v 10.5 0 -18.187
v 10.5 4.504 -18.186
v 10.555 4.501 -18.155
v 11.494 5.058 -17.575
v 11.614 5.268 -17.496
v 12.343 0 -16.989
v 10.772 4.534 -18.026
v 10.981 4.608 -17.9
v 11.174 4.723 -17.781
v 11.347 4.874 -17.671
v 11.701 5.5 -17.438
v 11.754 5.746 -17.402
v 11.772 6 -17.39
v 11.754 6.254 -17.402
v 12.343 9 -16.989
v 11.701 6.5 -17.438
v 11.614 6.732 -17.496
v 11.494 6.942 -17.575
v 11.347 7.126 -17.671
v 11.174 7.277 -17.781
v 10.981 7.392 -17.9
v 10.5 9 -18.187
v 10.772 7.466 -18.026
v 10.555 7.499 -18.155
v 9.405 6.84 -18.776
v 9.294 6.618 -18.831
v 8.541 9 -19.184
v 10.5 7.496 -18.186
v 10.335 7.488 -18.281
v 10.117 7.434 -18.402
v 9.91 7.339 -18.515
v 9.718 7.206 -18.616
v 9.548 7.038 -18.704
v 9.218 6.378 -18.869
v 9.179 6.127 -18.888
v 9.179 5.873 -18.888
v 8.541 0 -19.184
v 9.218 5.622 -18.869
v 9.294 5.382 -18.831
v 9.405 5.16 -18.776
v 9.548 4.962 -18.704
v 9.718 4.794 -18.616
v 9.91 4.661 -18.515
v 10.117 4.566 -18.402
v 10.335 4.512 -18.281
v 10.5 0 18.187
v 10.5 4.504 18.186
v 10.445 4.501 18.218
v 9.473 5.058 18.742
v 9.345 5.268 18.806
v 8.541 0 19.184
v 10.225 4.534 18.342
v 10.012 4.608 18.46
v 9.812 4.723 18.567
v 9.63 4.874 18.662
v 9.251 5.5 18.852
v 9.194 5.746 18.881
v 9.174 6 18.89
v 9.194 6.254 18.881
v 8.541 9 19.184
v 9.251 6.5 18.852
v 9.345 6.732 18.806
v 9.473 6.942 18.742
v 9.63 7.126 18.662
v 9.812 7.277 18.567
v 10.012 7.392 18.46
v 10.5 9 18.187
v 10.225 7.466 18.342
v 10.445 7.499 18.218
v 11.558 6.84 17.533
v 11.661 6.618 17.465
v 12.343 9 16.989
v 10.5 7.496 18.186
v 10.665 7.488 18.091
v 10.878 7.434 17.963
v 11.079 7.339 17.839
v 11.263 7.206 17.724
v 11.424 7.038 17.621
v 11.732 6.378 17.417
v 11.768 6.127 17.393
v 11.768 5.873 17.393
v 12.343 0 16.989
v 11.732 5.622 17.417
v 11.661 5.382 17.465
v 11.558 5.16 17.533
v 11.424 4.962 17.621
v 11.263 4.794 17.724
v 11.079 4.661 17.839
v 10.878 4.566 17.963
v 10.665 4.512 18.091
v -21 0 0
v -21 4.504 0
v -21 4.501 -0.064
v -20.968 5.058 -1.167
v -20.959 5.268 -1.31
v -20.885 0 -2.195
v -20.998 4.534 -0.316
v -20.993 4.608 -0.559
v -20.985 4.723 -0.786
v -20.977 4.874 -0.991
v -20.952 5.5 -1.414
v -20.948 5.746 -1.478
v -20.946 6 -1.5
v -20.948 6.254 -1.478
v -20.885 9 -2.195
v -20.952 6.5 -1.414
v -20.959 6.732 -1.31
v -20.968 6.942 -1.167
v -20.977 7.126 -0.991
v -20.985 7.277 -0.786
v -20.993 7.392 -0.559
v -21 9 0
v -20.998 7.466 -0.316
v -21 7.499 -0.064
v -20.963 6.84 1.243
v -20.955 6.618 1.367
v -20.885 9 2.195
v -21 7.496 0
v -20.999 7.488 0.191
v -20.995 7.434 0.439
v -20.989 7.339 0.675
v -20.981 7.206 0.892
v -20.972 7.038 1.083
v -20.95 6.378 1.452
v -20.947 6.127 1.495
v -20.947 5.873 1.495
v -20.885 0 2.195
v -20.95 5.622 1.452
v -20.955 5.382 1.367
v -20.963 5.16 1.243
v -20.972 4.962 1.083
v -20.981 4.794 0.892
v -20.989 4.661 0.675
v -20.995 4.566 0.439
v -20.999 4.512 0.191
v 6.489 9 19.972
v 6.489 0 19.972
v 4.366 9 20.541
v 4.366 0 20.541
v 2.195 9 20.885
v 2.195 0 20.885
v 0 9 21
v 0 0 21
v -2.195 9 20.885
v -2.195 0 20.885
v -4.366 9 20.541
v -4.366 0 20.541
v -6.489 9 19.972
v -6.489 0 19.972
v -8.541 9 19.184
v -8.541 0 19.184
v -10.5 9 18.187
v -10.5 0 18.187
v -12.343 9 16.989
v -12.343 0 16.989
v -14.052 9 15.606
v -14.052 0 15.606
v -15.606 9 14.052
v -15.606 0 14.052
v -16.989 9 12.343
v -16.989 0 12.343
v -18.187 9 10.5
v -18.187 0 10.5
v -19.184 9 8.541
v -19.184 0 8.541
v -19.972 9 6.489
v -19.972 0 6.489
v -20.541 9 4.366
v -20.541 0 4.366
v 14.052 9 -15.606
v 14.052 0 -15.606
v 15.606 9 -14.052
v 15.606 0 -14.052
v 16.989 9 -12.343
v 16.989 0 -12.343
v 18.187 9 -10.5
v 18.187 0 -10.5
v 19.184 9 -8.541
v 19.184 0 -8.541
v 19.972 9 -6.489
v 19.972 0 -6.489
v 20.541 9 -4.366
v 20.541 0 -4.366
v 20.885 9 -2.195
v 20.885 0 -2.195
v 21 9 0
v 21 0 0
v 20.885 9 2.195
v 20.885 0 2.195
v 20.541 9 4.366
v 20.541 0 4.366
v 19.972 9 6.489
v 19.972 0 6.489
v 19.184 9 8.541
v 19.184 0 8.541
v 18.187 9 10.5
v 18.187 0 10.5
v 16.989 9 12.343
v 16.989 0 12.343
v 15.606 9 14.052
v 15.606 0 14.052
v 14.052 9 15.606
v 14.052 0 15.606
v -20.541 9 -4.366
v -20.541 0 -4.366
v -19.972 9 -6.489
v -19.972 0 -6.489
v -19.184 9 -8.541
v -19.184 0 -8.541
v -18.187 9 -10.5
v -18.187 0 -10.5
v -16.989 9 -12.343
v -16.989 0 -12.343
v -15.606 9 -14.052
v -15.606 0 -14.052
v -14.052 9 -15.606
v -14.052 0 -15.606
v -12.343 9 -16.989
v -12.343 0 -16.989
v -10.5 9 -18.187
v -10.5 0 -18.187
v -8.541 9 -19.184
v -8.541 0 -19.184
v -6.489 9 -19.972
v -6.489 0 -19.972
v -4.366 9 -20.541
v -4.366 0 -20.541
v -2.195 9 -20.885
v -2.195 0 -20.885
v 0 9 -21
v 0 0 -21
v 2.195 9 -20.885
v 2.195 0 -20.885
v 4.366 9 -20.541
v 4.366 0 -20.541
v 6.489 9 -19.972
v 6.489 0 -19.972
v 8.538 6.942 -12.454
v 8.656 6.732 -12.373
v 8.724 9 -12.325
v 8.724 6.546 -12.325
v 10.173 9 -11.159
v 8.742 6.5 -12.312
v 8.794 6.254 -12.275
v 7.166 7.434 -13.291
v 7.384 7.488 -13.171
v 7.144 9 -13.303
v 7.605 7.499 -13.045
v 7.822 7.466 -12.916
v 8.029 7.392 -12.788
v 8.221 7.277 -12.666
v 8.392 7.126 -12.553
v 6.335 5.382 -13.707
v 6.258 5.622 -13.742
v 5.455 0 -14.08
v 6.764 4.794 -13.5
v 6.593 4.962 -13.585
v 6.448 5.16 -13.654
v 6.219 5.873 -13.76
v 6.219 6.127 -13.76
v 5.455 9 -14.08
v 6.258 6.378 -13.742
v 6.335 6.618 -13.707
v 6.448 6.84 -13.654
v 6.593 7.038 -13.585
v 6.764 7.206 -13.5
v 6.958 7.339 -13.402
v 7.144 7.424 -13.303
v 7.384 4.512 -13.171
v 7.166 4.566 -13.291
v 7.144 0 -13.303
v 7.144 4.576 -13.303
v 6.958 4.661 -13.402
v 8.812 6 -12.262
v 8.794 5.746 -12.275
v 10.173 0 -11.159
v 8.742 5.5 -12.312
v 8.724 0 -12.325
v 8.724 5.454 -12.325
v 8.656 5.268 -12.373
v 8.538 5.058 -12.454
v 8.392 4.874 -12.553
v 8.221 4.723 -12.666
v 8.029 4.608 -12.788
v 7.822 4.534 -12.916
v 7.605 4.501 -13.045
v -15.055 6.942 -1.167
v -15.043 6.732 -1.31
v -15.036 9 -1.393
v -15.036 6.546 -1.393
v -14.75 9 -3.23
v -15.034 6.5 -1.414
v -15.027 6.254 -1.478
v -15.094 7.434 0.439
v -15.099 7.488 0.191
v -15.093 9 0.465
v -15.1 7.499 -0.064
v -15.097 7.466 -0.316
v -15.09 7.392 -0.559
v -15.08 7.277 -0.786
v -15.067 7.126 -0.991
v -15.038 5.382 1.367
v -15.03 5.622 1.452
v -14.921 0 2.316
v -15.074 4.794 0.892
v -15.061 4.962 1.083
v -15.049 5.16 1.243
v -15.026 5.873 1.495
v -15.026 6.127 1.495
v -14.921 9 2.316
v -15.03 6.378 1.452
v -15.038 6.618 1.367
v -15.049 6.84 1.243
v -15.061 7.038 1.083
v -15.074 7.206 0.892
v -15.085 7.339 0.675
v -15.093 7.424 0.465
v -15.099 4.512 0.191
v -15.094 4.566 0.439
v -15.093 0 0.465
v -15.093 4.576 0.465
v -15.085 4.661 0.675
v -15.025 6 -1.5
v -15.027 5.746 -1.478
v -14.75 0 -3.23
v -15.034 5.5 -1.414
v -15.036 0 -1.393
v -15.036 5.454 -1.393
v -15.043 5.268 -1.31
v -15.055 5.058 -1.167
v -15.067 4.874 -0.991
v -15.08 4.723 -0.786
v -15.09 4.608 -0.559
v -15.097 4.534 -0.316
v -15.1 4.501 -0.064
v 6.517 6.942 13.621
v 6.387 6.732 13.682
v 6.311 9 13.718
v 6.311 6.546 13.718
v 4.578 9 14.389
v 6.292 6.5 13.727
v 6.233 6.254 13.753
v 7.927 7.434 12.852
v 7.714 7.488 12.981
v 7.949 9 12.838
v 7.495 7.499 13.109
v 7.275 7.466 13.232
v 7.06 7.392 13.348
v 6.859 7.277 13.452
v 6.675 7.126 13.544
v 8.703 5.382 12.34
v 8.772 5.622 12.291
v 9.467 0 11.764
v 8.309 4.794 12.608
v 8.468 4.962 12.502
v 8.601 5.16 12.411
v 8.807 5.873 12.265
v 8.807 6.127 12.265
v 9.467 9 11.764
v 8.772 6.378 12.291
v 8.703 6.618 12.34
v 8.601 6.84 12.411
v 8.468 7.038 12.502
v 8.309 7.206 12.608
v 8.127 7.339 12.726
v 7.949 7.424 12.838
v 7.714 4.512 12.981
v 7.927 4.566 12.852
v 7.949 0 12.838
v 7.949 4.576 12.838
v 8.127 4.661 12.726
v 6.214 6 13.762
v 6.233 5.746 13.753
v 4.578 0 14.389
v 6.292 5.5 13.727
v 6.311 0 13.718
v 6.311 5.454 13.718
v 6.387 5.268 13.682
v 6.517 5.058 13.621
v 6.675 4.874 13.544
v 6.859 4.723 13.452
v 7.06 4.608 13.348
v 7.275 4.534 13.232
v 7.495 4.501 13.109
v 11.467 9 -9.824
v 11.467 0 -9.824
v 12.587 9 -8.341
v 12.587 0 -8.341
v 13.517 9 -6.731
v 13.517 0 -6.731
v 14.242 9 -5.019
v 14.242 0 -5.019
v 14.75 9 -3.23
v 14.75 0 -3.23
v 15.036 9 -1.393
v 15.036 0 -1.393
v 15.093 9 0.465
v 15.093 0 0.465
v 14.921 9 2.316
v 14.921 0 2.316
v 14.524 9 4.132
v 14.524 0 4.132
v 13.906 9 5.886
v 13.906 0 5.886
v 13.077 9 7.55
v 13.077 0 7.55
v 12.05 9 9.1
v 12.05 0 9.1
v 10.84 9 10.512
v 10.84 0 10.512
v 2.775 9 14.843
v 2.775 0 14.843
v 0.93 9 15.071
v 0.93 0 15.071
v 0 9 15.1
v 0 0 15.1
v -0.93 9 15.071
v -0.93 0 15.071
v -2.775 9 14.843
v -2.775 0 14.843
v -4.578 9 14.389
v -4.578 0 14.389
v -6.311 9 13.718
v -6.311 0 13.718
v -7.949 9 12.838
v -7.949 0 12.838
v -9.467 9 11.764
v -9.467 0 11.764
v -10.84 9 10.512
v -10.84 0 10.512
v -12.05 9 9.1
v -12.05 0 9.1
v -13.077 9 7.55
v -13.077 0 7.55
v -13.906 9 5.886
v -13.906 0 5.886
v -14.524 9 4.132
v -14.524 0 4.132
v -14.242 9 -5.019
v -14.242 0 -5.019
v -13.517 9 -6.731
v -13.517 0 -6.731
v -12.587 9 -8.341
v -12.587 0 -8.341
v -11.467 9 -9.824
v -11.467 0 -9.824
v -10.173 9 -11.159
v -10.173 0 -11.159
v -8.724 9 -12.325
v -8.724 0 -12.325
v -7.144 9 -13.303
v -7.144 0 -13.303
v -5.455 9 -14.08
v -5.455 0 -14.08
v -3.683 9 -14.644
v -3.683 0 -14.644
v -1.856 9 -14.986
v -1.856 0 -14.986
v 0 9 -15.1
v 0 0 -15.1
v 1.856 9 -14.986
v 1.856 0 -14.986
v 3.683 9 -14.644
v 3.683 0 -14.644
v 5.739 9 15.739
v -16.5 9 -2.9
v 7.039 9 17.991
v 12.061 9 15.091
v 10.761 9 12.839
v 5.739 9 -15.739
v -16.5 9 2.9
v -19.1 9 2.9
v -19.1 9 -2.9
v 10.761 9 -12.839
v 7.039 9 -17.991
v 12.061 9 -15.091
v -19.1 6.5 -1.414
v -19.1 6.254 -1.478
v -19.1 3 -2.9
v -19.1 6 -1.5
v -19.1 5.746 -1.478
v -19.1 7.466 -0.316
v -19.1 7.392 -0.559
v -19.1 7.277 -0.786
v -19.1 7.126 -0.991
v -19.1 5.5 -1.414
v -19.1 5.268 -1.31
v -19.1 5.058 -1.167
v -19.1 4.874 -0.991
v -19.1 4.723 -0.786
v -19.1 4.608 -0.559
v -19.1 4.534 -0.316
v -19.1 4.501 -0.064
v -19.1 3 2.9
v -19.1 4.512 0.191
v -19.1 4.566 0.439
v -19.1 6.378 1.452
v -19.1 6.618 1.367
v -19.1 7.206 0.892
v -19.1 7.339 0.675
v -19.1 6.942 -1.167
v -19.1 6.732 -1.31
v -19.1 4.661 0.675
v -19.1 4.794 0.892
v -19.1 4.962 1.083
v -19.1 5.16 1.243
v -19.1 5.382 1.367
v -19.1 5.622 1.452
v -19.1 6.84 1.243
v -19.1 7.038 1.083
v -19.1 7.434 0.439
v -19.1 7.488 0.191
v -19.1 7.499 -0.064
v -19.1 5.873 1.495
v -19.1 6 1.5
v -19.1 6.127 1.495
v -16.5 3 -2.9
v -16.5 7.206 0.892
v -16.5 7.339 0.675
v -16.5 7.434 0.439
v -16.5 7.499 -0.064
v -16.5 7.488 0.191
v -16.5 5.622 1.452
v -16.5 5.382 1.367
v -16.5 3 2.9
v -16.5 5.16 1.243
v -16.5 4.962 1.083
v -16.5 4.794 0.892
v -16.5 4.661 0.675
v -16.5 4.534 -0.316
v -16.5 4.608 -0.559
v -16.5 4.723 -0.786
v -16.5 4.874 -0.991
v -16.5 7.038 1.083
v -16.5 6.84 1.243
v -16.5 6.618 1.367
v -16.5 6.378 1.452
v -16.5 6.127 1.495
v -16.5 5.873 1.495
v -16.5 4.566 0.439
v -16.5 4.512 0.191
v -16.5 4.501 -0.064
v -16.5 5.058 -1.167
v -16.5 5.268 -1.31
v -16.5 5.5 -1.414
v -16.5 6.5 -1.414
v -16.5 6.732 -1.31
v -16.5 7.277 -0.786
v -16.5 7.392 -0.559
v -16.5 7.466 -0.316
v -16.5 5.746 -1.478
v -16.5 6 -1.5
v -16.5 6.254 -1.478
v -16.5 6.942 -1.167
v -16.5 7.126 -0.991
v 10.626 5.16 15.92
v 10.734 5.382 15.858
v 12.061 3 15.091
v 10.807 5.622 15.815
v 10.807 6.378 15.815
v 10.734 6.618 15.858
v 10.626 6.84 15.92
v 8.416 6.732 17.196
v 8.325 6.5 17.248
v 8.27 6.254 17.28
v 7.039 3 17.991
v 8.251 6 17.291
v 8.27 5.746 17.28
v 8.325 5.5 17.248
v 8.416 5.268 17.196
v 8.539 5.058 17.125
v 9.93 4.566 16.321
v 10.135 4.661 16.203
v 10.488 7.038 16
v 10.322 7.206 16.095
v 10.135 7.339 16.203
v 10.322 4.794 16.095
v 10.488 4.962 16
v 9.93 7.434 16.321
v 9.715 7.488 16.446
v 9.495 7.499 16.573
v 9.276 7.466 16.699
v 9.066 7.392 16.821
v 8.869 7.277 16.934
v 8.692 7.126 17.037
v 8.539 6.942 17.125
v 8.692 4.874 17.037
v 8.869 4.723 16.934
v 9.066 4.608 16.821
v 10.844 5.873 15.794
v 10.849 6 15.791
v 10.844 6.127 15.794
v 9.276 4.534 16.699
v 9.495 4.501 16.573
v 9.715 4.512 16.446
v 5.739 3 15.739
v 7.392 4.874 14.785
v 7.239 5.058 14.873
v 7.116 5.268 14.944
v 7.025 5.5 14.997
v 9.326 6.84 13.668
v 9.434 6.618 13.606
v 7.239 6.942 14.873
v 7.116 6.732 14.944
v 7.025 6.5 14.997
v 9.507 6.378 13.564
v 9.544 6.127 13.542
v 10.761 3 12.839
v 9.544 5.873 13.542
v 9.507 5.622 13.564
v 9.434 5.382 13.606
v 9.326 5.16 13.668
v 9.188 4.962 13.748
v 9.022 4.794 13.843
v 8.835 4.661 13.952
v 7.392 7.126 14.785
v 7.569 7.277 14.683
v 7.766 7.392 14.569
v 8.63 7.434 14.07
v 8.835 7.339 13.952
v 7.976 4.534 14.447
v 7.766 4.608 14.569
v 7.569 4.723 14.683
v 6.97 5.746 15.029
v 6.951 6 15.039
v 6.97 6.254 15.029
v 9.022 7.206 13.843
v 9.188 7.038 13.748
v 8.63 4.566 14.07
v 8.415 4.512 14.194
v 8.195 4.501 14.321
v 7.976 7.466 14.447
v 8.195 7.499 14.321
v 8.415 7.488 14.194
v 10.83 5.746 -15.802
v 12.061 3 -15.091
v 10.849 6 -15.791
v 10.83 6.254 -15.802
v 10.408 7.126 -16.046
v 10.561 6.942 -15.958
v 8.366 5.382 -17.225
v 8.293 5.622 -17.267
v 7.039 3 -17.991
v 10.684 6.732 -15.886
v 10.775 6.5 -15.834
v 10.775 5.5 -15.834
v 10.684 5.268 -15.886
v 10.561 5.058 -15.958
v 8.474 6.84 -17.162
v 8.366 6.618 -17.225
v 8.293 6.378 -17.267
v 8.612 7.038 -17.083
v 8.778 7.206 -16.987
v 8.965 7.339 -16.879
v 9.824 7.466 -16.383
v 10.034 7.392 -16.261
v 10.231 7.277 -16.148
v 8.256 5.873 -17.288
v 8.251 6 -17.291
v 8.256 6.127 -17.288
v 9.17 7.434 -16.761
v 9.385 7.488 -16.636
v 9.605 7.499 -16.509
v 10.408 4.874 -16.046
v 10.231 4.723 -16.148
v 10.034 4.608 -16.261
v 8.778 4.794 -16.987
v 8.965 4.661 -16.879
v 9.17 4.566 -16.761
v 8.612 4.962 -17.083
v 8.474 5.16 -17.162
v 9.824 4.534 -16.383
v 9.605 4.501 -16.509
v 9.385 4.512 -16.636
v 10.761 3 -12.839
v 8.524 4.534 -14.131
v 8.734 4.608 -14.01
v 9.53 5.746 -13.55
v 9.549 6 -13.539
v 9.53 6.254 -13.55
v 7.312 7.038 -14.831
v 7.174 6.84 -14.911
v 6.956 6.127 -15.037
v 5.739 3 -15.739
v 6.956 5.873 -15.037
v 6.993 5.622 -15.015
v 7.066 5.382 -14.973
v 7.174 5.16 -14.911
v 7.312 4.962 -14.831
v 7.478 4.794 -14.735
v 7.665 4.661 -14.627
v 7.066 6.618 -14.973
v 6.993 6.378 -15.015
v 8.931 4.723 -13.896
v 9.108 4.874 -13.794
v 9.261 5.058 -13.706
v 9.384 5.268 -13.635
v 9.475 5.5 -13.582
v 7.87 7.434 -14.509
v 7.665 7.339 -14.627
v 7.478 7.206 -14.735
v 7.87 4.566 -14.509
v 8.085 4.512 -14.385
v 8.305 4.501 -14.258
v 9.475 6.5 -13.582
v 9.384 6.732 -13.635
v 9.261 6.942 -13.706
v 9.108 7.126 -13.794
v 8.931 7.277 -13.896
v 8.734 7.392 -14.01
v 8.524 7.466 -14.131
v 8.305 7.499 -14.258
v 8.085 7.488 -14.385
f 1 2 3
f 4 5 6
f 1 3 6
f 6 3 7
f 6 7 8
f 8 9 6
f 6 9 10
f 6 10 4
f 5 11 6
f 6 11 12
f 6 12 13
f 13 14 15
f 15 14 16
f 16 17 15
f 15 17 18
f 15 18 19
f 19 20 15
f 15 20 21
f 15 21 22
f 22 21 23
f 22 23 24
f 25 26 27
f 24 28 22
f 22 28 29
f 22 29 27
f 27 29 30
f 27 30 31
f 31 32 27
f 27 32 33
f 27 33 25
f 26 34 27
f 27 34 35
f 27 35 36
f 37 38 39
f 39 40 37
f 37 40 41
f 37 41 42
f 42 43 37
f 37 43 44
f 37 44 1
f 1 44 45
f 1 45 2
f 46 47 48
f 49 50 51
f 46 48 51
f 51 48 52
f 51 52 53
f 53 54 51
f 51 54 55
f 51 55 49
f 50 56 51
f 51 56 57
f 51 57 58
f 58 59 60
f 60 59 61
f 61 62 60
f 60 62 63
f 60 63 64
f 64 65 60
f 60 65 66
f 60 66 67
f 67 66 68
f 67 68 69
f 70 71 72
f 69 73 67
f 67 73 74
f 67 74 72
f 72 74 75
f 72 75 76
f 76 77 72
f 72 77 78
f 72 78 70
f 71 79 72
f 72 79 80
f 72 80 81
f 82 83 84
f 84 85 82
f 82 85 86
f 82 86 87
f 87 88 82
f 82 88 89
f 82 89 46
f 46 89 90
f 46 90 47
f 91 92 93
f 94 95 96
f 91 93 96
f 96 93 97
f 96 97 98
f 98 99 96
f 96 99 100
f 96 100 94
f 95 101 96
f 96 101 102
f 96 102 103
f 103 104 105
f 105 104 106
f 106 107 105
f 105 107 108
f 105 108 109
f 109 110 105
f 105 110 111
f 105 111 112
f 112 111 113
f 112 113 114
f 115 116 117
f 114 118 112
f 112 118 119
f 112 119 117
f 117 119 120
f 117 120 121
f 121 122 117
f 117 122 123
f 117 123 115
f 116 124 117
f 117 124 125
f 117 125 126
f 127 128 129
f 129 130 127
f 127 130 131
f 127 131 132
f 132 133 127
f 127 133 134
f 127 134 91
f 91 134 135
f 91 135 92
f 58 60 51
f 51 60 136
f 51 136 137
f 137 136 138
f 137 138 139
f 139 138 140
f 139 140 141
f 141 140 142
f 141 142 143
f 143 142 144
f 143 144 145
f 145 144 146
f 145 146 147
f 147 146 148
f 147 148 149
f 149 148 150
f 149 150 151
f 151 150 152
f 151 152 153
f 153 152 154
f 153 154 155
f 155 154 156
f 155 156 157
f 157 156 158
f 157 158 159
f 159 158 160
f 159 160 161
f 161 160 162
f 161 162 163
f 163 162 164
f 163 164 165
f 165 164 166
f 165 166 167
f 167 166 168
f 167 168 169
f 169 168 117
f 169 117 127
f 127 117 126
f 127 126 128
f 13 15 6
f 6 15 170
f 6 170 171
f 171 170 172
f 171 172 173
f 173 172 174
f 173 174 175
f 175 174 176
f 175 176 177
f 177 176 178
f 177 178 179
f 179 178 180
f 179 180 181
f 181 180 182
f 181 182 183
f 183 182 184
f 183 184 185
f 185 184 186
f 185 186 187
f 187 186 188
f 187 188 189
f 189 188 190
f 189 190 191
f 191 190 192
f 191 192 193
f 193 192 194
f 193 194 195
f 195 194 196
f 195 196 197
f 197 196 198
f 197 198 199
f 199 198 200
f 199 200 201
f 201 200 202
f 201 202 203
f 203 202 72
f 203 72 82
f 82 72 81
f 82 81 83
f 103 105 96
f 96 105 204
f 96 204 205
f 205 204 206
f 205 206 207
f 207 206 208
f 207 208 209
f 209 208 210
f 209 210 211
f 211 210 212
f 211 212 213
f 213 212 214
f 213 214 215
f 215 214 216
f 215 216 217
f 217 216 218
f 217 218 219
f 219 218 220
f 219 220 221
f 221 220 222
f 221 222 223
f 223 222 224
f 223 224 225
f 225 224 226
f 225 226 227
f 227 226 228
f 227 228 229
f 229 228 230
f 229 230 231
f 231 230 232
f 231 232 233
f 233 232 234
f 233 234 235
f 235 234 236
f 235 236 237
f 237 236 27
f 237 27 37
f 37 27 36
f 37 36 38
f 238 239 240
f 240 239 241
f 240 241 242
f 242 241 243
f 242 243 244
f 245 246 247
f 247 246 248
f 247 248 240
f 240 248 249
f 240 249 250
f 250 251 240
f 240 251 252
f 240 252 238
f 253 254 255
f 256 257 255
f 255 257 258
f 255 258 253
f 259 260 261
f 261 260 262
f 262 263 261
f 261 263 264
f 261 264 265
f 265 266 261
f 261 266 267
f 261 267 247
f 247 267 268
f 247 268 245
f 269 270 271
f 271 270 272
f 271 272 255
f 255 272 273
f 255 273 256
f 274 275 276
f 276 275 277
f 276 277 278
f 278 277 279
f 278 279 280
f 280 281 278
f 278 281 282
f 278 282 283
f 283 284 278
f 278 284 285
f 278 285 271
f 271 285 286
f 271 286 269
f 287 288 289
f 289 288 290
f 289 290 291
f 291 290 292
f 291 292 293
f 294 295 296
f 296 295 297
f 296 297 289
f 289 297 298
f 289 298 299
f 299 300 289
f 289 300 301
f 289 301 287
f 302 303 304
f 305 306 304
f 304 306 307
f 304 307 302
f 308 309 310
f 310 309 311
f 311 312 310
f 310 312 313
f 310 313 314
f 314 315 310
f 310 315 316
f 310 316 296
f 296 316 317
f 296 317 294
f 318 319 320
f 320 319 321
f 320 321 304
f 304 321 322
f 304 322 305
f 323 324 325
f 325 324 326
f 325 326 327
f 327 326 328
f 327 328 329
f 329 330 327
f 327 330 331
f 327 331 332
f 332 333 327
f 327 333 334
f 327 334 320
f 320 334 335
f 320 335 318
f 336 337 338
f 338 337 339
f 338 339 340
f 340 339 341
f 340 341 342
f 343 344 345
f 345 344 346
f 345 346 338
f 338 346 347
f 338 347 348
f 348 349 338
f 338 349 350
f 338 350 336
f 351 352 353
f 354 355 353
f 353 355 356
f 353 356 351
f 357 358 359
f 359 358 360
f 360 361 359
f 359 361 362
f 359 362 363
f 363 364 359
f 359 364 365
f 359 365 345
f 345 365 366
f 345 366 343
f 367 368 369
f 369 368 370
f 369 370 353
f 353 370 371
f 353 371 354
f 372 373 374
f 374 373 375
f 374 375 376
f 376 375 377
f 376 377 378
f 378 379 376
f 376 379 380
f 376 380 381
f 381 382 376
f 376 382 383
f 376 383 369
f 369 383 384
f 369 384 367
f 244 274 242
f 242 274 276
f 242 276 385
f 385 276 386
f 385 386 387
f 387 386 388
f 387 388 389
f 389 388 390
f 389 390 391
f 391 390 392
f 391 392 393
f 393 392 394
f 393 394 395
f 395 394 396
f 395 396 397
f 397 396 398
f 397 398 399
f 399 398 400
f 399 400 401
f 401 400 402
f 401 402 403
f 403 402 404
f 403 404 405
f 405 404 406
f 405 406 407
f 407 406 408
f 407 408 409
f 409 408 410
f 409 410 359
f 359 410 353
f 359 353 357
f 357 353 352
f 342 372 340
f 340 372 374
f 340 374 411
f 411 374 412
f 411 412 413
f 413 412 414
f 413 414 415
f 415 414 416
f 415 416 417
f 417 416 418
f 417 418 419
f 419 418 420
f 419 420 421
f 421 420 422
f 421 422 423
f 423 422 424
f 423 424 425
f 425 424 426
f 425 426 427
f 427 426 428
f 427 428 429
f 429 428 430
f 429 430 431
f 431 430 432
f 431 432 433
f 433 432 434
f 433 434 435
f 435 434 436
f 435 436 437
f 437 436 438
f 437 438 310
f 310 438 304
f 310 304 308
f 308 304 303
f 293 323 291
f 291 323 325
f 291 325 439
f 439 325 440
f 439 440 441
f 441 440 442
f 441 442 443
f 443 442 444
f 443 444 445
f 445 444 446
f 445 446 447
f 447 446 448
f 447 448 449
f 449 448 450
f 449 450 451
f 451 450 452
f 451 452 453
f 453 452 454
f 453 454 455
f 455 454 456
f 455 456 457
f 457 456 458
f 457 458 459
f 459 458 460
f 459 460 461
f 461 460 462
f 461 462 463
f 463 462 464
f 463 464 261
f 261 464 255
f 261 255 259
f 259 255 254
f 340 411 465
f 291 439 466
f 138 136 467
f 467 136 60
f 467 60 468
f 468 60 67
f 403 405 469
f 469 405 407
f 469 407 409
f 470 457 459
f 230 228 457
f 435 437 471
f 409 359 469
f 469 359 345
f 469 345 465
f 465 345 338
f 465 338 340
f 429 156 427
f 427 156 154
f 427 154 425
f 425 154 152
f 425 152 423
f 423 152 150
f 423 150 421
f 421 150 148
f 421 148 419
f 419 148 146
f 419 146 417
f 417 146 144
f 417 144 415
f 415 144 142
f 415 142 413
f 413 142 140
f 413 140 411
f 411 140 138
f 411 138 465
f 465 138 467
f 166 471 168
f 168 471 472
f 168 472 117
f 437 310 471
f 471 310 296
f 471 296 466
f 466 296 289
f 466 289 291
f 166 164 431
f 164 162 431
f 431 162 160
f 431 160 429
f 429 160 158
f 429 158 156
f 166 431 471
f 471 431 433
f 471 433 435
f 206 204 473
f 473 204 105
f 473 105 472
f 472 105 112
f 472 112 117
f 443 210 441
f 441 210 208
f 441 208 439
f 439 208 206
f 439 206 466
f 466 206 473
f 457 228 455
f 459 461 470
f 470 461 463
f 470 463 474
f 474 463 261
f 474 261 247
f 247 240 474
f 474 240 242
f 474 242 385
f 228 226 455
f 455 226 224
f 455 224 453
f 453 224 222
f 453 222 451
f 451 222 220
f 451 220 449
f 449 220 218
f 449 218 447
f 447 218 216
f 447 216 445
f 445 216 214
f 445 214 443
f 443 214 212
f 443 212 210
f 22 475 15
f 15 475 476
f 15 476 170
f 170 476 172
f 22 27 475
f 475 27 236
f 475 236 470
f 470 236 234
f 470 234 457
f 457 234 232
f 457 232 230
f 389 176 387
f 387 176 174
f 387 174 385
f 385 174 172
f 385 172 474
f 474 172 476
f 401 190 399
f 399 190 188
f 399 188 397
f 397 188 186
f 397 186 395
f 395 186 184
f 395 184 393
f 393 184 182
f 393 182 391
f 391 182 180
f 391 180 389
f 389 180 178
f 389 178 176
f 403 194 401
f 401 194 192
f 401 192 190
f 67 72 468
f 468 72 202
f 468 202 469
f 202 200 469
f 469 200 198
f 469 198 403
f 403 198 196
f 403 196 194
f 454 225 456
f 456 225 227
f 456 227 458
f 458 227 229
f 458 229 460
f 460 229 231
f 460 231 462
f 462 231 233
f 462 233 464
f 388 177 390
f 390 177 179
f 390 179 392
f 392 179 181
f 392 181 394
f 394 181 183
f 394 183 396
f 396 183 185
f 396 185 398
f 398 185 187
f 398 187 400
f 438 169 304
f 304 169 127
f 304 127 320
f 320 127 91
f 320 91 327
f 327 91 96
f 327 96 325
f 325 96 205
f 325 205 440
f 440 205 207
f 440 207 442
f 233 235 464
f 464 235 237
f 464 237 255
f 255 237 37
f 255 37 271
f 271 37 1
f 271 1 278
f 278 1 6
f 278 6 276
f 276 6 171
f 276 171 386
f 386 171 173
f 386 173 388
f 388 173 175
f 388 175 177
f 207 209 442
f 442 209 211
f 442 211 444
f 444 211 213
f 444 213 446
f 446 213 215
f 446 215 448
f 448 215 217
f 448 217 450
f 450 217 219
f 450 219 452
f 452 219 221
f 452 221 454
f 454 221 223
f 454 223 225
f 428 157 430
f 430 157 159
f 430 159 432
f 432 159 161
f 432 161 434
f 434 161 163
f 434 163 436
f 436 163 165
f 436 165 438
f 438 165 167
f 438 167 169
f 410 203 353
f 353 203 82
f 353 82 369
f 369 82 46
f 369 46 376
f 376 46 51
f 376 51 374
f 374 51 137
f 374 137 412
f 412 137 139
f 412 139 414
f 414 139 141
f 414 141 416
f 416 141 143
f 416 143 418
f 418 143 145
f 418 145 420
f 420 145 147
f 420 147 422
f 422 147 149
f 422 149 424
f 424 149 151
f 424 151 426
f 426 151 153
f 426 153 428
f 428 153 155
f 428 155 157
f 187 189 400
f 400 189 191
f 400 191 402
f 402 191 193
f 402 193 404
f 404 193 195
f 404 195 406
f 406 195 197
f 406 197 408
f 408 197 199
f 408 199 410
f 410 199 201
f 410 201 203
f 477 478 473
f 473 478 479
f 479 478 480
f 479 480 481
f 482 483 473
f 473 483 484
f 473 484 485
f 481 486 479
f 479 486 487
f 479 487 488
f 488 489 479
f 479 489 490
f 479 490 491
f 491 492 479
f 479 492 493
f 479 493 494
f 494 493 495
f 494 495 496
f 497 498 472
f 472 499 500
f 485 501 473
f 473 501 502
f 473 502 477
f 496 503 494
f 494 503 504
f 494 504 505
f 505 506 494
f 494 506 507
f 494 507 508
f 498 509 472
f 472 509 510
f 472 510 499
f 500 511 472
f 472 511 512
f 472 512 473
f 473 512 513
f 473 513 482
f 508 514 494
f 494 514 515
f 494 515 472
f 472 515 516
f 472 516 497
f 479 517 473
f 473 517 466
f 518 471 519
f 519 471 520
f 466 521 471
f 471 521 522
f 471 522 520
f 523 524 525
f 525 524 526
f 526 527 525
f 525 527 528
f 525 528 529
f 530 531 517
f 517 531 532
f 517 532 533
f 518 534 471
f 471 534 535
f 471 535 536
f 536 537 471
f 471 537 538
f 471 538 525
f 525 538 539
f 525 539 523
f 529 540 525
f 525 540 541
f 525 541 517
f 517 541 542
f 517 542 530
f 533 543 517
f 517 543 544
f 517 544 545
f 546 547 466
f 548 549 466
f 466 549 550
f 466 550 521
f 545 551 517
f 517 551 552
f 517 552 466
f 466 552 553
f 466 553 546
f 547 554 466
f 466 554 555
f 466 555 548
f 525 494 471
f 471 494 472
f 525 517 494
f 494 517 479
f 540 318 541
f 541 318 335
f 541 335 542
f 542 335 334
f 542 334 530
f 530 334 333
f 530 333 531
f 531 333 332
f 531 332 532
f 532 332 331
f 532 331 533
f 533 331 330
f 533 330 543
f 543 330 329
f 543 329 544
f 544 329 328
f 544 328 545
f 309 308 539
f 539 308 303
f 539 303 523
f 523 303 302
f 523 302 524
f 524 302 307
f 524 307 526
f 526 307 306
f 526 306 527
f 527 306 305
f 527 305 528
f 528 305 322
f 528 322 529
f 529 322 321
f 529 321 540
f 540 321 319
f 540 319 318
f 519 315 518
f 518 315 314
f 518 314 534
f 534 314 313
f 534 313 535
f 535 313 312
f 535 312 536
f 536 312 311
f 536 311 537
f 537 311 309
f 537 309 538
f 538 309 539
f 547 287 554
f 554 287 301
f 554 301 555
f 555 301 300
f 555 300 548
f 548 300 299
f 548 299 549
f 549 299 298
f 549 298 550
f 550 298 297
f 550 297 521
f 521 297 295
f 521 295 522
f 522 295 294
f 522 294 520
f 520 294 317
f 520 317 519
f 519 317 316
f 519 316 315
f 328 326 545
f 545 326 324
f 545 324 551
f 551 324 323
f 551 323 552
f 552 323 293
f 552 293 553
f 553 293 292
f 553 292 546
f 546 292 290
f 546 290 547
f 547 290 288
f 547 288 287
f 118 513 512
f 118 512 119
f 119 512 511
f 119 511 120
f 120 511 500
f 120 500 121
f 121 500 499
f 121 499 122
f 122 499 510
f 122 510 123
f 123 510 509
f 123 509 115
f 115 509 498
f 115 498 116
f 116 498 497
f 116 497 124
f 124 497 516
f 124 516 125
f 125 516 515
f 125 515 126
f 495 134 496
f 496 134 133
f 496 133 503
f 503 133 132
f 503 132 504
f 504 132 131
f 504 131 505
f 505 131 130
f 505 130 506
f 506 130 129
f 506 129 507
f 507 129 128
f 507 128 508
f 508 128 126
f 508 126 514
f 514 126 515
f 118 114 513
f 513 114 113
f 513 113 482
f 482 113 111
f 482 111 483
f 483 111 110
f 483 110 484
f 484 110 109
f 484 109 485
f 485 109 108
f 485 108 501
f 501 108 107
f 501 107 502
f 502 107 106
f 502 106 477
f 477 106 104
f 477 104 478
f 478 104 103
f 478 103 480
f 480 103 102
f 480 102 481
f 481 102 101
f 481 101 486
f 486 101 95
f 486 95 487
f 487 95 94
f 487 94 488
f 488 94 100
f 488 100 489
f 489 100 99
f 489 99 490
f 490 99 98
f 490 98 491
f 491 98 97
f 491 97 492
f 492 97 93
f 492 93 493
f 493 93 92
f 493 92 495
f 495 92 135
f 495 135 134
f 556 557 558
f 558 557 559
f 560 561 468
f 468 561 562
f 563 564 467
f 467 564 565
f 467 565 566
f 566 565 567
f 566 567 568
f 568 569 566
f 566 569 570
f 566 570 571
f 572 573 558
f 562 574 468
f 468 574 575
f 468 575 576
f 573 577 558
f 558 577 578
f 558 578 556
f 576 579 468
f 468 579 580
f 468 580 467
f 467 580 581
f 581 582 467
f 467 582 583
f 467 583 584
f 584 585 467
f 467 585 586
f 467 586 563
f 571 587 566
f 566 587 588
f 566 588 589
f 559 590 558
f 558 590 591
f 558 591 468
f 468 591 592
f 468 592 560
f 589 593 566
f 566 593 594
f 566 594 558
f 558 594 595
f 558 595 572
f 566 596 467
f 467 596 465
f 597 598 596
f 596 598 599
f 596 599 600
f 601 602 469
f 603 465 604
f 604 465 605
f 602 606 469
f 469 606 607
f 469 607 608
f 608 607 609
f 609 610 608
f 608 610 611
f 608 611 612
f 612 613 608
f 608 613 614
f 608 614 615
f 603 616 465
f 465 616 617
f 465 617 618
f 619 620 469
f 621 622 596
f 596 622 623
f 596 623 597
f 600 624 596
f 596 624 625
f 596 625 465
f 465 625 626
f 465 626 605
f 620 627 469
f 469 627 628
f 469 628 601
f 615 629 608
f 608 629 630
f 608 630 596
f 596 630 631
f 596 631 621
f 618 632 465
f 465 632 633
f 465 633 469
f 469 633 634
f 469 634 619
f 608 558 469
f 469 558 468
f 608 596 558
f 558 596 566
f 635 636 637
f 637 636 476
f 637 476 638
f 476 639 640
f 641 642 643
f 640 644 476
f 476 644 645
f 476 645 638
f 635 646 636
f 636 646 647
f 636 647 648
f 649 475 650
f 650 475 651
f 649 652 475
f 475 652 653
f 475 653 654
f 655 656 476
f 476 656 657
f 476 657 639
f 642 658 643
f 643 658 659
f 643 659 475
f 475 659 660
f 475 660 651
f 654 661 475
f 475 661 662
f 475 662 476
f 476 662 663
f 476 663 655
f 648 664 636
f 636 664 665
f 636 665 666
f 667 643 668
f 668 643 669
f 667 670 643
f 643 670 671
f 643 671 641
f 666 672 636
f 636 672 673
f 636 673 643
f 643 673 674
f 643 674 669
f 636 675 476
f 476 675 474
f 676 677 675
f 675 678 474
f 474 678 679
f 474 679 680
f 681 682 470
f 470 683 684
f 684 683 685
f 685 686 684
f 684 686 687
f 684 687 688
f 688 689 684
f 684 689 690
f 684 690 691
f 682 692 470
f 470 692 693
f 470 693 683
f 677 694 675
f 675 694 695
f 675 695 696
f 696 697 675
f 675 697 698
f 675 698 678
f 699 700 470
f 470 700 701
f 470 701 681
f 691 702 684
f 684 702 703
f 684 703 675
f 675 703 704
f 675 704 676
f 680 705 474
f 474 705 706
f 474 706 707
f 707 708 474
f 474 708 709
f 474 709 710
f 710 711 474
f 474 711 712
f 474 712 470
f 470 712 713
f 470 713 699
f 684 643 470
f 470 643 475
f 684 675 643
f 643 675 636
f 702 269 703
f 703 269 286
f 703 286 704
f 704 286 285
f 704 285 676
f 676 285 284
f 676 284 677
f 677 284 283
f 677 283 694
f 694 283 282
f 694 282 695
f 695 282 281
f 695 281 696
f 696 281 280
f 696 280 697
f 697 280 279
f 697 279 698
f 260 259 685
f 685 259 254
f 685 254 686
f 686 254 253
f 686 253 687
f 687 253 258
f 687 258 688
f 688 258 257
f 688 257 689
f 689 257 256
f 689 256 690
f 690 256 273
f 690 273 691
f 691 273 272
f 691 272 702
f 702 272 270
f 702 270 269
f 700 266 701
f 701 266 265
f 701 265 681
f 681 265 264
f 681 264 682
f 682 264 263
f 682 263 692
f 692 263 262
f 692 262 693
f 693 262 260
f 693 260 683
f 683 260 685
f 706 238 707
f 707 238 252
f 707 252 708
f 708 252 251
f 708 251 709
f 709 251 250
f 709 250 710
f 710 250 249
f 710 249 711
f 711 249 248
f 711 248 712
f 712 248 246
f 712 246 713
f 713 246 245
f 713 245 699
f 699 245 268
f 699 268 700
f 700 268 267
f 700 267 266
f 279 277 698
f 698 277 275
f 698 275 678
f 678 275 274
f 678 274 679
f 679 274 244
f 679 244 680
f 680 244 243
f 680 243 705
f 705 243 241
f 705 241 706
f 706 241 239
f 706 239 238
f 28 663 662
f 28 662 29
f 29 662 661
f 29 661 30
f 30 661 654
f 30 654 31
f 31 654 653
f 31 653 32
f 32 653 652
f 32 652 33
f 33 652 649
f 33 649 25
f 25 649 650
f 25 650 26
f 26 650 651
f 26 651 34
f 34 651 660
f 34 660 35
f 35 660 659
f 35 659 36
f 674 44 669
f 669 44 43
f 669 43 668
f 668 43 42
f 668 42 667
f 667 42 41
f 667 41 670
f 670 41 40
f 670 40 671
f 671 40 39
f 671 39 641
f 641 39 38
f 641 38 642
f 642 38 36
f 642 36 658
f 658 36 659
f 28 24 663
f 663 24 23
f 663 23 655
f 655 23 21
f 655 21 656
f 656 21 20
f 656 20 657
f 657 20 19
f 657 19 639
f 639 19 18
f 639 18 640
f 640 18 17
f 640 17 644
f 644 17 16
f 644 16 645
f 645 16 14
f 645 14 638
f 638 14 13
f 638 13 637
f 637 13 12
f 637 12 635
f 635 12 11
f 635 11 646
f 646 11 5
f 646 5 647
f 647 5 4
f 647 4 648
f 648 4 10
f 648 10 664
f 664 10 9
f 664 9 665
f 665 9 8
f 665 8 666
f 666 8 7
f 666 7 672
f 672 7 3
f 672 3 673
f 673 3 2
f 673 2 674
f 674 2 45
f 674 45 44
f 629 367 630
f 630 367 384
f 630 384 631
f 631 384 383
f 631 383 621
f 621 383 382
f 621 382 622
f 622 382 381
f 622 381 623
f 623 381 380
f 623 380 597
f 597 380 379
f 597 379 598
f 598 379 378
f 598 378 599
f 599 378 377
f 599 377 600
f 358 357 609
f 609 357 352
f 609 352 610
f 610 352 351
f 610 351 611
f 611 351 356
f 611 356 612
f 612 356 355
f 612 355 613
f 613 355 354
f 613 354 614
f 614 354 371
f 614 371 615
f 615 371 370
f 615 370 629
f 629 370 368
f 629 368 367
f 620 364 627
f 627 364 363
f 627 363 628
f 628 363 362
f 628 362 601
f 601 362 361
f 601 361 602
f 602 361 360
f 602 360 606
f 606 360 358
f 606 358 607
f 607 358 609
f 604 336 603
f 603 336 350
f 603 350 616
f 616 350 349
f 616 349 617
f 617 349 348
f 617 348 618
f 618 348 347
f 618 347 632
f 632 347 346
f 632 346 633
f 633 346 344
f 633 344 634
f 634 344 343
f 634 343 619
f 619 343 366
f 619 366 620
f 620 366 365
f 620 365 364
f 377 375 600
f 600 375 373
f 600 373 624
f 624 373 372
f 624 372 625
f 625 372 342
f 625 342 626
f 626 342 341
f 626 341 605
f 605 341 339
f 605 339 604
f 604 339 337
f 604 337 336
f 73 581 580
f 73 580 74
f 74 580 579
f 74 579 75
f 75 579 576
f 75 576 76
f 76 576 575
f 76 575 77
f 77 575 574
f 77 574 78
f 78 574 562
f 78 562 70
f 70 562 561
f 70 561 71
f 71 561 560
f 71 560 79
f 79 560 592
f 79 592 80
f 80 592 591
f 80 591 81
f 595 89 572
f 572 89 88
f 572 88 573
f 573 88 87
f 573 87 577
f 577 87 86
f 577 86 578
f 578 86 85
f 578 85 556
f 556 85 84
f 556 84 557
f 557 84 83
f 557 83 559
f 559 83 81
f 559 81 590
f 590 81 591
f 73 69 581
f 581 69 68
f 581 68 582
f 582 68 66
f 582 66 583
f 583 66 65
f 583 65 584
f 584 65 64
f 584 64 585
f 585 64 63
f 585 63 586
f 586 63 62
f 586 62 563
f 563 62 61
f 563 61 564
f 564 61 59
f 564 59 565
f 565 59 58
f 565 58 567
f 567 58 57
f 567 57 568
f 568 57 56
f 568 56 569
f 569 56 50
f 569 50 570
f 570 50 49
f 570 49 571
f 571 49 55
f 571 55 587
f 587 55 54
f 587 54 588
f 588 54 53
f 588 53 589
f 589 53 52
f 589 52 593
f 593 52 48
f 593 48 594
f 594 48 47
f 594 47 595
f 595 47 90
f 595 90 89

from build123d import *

# Parameters (mm, degrees)
SKETCH1_R           = 21
SKETCH1_R_2         = 15.1
BOSS_EXTRUDE1_DEPTH = 9
SKETCH2_W           = 2.6
SKETCH2_H           = 5.8
CUT_EXTRUDE1_DEPTH  = 6
SKETCH3_R           = 1.5
CUT_EXTRUDE2_DEPTH  = 6
CIRPATTERN1_COUNT   = 3


with BuildPart() as part:
    # Sketch1 → Boss-Extrude1 (new body)
    with BuildSketch(Plane(origin=(0, 0, 0), x_dir=(1, 0, 0), z_dir=(0, 1, 0))):
        Circle(SKETCH1_R)
        Circle(SKETCH1_R_2, mode=Mode.SUBTRACT)
    extrude(amount=BOSS_EXTRUDE1_DEPTH)

    # Sketch2 → Cut-Extrude1 (cut)
    with BuildSketch(Plane(origin=(0, 9, 0), x_dir=(1, 0, 0), z_dir=(0, 1, 0))):
        with Locations((-17.8, 0)):
            Rectangle(SKETCH2_W, SKETCH2_H)
    cut_extrude1 = extrude(amount=-CUT_EXTRUDE1_DEPTH, mode=Mode.SUBTRACT)

    # Sketch3 → Cut-Extrude2 (cut, symmetric)
    with BuildSketch(Plane.ZY.offset(16.5)):
        with Locations((0, 6)):
            Circle(SKETCH3_R)
    cut_extrude2 = extrude(amount=CUT_EXTRUDE2_DEPTH, both=True, mode=Mode.SUBTRACT)

    # CirPattern1: Cut-Extrude1, Cut-Extrude2 ×3 about axis
    cirpattern1_axis = Axis((0, 9.45, 0), (0, -1, 0))
    add([cut_extrude1.rotate(cirpattern1_axis, i * 360 / CIRPATTERN1_COUNT) for i in range(1, CIRPATTERN1_COUNT)], mode=Mode.SUBTRACT)
    add([cut_extrude2.rotate(cirpattern1_axis, i * 360 / CIRPATTERN1_COUNT) for i in range(1, CIRPATTERN1_COUNT)], mode=Mode.SUBTRACT)


solid = part.part
